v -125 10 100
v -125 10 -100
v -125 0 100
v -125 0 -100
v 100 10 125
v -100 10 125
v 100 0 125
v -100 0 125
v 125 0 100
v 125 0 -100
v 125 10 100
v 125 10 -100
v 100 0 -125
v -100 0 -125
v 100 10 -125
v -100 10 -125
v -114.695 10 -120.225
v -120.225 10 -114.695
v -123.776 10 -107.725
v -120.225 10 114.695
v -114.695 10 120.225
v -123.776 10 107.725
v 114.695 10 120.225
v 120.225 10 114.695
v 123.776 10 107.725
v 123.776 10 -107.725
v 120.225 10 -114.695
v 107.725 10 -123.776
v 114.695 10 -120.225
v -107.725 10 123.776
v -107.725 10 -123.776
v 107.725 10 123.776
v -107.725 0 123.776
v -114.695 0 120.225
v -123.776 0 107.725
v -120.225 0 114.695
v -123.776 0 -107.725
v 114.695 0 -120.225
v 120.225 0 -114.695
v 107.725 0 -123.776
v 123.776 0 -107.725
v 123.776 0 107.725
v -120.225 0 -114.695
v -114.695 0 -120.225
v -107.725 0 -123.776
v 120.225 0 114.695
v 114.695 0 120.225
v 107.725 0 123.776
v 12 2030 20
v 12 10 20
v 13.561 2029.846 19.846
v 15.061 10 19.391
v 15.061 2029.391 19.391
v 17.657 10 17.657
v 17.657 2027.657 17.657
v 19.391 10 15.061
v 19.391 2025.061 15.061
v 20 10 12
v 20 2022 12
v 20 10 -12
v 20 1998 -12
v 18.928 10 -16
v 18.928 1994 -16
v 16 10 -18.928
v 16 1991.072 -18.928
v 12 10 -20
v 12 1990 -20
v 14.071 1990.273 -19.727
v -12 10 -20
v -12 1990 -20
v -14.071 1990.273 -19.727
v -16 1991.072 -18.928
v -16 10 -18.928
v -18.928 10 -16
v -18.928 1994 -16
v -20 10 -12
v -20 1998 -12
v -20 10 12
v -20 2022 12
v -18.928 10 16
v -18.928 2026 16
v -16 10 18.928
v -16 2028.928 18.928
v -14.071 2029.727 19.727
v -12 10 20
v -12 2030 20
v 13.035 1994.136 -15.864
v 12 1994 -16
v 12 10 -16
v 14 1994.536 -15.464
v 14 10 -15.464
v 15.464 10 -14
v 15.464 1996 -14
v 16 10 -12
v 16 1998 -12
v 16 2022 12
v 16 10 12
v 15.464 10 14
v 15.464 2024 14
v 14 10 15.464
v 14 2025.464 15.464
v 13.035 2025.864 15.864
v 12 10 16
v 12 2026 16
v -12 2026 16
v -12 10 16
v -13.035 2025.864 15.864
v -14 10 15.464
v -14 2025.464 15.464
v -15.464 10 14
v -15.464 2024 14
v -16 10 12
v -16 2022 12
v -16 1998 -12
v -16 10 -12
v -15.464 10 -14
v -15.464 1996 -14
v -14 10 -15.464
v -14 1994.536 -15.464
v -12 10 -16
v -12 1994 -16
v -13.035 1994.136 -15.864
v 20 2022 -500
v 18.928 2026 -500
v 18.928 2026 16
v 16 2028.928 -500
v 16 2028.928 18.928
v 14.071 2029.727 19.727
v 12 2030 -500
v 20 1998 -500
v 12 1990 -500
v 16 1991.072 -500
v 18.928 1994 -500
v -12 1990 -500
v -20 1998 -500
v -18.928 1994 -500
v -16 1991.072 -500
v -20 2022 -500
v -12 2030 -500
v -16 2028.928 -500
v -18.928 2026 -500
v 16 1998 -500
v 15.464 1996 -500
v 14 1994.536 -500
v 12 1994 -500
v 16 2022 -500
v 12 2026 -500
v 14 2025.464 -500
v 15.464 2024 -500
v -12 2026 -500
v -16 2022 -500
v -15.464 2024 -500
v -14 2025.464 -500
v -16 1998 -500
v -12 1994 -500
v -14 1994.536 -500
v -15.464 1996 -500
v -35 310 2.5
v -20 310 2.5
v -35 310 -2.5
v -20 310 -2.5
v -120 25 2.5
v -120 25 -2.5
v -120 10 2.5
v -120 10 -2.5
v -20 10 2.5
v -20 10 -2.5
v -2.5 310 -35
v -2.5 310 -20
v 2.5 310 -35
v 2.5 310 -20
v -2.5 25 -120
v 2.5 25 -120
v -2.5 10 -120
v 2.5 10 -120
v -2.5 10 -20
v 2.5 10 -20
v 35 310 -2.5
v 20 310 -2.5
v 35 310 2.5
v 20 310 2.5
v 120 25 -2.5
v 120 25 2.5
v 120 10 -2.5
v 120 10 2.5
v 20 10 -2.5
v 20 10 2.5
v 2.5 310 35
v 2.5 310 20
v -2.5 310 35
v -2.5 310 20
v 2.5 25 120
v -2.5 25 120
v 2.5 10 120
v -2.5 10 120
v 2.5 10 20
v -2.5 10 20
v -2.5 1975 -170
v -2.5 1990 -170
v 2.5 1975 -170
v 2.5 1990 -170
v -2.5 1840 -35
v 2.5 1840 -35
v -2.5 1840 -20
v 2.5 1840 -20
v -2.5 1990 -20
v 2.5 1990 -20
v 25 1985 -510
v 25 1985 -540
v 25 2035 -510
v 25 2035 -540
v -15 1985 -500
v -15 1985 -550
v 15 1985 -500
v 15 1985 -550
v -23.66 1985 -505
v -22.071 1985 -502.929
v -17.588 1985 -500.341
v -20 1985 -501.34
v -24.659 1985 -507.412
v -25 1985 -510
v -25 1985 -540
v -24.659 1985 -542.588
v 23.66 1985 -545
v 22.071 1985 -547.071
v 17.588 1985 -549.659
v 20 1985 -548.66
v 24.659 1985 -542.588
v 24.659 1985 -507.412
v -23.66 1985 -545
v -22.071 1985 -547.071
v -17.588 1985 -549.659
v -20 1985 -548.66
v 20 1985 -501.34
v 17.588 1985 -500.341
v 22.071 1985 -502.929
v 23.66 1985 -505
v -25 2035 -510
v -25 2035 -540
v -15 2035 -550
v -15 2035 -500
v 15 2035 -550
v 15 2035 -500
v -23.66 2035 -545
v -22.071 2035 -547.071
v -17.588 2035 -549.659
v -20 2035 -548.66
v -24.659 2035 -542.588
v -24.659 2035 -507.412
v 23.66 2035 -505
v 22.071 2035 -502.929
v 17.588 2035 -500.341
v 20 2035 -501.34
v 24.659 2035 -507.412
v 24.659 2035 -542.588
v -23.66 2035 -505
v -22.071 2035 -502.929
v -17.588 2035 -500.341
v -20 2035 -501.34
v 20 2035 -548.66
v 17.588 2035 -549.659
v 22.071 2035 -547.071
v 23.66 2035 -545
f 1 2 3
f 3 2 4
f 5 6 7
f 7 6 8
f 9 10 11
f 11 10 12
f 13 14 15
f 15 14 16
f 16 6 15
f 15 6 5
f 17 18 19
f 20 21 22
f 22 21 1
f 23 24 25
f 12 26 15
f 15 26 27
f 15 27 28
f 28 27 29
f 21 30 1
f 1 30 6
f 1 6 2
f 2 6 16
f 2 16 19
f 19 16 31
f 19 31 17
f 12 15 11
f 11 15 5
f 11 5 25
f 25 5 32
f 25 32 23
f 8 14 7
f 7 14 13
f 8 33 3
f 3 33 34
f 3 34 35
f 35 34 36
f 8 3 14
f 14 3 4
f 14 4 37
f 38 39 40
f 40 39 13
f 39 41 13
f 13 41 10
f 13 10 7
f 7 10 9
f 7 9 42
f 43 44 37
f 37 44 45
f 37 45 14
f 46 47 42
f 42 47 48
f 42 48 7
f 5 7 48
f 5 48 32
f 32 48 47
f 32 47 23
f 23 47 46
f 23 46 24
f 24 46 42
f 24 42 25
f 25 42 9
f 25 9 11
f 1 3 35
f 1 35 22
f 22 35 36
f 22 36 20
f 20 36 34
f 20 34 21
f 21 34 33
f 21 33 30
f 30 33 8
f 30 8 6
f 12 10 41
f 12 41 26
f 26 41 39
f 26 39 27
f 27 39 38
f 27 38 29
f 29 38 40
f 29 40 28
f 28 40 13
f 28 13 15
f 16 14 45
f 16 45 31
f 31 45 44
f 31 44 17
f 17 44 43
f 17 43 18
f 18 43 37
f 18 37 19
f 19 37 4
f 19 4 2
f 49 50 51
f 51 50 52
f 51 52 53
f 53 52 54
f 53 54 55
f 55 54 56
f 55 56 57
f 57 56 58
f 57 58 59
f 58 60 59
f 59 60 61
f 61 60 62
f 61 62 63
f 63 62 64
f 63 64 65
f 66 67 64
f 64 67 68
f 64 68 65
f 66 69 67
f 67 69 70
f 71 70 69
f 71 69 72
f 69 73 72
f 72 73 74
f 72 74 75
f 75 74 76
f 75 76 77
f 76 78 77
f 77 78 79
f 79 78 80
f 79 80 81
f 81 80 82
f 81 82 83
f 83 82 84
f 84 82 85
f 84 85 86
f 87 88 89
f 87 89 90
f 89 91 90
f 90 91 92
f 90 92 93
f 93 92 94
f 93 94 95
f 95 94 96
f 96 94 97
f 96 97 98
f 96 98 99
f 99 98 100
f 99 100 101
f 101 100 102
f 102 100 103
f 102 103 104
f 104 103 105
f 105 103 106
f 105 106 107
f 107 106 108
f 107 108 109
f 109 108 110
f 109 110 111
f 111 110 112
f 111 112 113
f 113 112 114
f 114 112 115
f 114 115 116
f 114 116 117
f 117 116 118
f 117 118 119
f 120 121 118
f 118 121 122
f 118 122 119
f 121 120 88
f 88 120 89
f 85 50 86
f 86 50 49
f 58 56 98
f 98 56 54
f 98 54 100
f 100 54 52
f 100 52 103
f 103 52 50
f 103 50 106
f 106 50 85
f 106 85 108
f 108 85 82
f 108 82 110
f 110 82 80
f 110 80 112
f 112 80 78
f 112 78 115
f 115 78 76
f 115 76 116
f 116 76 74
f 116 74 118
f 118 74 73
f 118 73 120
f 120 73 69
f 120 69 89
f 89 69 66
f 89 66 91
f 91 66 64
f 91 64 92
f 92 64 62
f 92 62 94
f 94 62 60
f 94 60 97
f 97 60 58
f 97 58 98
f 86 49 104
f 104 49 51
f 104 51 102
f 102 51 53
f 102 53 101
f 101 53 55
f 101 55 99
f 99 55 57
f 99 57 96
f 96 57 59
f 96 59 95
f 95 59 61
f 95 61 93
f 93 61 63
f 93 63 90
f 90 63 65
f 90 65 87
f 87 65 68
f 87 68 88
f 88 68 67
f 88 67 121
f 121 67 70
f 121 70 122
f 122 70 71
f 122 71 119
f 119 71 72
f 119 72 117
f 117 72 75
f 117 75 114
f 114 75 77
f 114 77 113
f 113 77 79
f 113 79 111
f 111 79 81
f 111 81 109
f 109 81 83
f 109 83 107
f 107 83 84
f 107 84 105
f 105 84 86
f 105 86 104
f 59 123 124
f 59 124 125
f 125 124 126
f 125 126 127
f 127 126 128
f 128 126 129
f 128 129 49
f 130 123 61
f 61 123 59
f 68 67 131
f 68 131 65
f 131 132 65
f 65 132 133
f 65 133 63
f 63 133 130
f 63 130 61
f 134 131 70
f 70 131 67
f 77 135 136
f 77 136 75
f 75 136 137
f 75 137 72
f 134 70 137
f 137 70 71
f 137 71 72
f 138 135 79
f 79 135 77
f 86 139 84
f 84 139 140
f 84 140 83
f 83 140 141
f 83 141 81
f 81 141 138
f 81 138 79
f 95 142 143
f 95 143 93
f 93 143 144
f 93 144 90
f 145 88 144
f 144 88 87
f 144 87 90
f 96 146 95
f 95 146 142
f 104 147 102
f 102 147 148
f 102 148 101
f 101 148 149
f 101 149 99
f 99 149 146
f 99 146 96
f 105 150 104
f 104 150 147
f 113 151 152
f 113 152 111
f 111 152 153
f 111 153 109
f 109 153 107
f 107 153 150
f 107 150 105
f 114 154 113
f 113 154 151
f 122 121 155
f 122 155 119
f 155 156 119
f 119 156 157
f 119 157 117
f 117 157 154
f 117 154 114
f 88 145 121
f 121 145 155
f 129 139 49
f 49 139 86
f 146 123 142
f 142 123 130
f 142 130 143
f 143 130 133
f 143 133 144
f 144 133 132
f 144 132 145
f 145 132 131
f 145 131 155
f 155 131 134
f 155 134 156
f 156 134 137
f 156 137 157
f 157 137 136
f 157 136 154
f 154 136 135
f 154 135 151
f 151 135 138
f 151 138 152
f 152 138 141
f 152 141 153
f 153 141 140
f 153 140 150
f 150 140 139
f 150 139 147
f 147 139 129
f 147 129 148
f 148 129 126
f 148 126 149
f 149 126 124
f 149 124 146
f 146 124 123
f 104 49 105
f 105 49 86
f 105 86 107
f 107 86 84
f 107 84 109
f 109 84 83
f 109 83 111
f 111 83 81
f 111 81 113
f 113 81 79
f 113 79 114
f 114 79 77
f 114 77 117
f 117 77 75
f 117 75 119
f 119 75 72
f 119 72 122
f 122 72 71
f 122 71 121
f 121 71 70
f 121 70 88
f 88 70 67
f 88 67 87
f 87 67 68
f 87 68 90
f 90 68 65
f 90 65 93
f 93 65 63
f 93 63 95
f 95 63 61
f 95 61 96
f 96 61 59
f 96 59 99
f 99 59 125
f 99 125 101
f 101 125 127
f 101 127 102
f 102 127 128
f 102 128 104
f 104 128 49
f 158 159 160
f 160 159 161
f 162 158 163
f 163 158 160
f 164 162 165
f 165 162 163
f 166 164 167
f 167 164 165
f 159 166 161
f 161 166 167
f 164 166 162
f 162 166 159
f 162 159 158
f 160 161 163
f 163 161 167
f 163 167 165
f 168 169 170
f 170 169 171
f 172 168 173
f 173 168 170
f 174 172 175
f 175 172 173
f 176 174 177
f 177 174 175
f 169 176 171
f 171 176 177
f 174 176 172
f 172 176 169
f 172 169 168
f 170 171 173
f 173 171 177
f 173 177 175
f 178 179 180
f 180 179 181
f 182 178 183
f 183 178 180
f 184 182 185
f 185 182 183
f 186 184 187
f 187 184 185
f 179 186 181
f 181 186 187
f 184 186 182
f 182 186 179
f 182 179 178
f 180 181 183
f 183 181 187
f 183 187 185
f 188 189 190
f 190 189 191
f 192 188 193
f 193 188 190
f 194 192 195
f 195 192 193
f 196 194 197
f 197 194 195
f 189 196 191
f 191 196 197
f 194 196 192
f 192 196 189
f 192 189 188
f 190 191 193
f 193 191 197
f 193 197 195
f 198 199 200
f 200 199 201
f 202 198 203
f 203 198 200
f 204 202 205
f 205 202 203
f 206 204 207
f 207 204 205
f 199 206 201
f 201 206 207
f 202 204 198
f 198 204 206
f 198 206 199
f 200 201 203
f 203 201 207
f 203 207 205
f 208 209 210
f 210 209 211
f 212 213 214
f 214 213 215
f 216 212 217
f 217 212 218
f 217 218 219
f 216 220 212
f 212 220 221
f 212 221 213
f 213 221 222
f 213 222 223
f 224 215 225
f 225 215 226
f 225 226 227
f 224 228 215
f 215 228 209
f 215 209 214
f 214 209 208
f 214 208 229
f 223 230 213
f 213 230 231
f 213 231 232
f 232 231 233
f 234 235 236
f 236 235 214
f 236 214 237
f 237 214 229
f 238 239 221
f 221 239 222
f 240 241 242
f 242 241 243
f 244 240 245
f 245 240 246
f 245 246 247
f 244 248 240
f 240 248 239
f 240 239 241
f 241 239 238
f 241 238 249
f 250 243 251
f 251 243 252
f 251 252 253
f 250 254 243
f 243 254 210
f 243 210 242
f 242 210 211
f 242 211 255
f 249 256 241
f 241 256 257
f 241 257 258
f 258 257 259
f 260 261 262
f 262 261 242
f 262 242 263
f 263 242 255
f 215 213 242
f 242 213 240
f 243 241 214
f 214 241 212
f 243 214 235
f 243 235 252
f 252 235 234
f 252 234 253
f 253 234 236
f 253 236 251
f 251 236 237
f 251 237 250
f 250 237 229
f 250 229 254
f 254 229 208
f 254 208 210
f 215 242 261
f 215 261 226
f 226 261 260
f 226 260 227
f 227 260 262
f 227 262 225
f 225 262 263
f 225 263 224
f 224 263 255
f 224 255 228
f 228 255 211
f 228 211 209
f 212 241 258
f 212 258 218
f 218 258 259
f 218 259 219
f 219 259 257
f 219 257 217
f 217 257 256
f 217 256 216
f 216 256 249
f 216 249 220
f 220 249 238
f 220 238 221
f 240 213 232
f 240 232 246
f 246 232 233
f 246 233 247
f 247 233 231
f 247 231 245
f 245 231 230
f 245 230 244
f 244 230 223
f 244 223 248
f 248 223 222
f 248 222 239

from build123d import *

# Parameters (mm, degrees)
SKETCH1_W                         = 250
SKETCH1_H                         = 250
BOSS_EXTRUDE1_DEPTH               = 10
SQUARE_TUBE_40_X_40_X_4_1_DEPTH   = 2029.284271247
SQUARE_TUBE_40_X_40_X_4_1_2_DEPTH = 529.284271247
GUSSET1_THICKNESS                 = 5
GUSSET2_THICKNESS                 = 5
GUSSET3_THICKNESS                 = 5
GUSSET4_THICKNESS                 = 5
GUSSET5_THICKNESS                 = 5
SKETCH18_W                        = 50
SKETCH18_H                        = 50
BOSS_EXTRUDE2_DEPTH               = 50
FILLET1_R                         = 10
FILLET2_R                         = 25


with BuildPart() as part:
    # Sketch1 → Boss-Extrude1 (new body)
    with BuildSketch(Plane(origin=(0, 0, 0), x_dir=(1, 0, 0), z_dir=(0, 1, 0))):
        Rectangle(SKETCH1_W, SKETCH1_H)
    extrude(amount=BOSS_EXTRUDE1_DEPTH)

    # Fillet2
    fillet2_edges = [part.edges().sort_by_distance(p)[0] for p in [
        (-125, 5, -125),
        (125, 5, -125),
        (125, 5, 125),
        (-125, 5, 125),
    ]]
    fillet(fillet2_edges, radius=FILLET2_R)


with BuildPart() as body_2:
    # Sketch12 → Square tube 40 X 40 X 4(1) (new body)
    with BuildSketch(Plane.ZX.offset(10)):
        with BuildLine():
            Line((-12, -20), (12, -20))
            ThreePointArc((12, -20), (17.656854249, -17.656854249), (20, -12))
            Line((20, -12), (20, 12))
            ThreePointArc((20, 12), (17.656854249, 17.656854249), (12, 20))
            Line((12, 20), (-12, 20))
            ThreePointArc((-12, 20), (-17.656854249, 17.656854249), (-20, 12))
            Line((-20, 12), (-20, -12))
            ThreePointArc((-20, -12), (-17.656854249, -17.656854249), (-12, -20))
        make_face()
        with BuildLine():
            Line((-12, -16), (12, -16))
            ThreePointArc((12, -16), (14.828427125, -14.828427125), (16, -12))
            Line((16, -12), (16, 12))
            ThreePointArc((16, 12), (14.828427125, 14.828427125), (12, 16))
            Line((12, 16), (-12, 16))
            ThreePointArc((-12, 16), (-14.828427125, 14.828427125), (-16, 12))
            Line((-16, 12), (-16, -12))
            ThreePointArc((-16, -12), (-14.828427125, -14.828427125), (-12, -16))
        make_face(mode=Mode.SUBTRACT)
    extrude(amount=SQUARE_TUBE_40_X_40_X_4_1_DEPTH)

    # Square tube 40 X 40 X 4(1) mitre 1
    split(bisect_by=Plane(origin=(0, 2010, 0), x_dir=(1, 0, 0), z_dir=(0, -0.707106781, 0.707106781)), keep=Keep.TOP)


with BuildPart() as body_3:
    # Sketch12 on segment 2 (carried to segment 2) → Square tube 40 X 40 X 4_1 2 (new body)
    with BuildSketch(Plane(origin=(0, 2010, 29.284271247), x_dir=(0, 1, 0), z_dir=(0, 0, -1))):
        with BuildLine():
            Line((-12, -20), (12, -20))
            ThreePointArc((12, -20), (17.656854249, -17.656854249), (20, -12))
            Line((20, -12), (20, 12))
            ThreePointArc((20, 12), (17.656854249, 17.656854249), (12, 20))
            Line((12, 20), (-12, 20))
            ThreePointArc((-12, 20), (-17.656854249, 17.656854249), (-20, 12))
            Line((-20, 12), (-20, -12))
            ThreePointArc((-20, -12), (-17.656854249, -17.656854249), (-12, -20))
        make_face()
        with BuildLine():
            Line((-12, -16), (12, -16))
            ThreePointArc((12, -16), (14.828427125, -14.828427125), (16, -12))
            Line((16, -12), (16, 12))
            ThreePointArc((16, 12), (14.828427125, 14.828427125), (12, 16))
            Line((12, 16), (-12, 16))
            ThreePointArc((-12, 16), (-14.828427125, 14.828427125), (-16, 12))
            Line((-16, 12), (-16, -12))
            ThreePointArc((-16, -12), (-14.828427125, -14.828427125), (-12, -16))
        make_face(mode=Mode.SUBTRACT)
    extrude(amount=SQUARE_TUBE_40_X_40_X_4_1_2_DEPTH)

    # Square tube 40 X 40 X 4_1 2 mitre 1
    split(bisect_by=Plane(origin=(0, 2010, 0), x_dir=(-1, 0, 0), z_dir=(0, 0.707106781, -0.707106781)), keep=Keep.TOP)


with BuildPart() as body_4:
    # Gusset1: a gusset: a plate 5.0 thick in the corner of two members, its outline drawn in place
    gusset1_outline = Wire([Line((-20, 10, 2.5), (-20, 310, 2.5)), Line((-20, 310, 2.5), (-35, 310, 2.5)), Line((-35, 310, 2.5), (-120, 25, 2.5)), Line((-120, 25, 2.5), (-120, 10, 2.5)), Line((-120, 10, 2.5), (-20, 10, 2.5))])
    add(extrude(Face(gusset1_outline), amount=GUSSET1_THICKNESS, dir=(0, 0, -1)))


with BuildPart() as body_5:
    # Gusset2: a gusset: a plate 5.0 thick in the corner of two members, its outline drawn in place
    gusset2_outline = Wire([Line((-2.5, 10, -20), (-2.5, 310, -20)), Line((-2.5, 310, -20), (-2.5, 310, -35)), Line((-2.5, 310, -35), (-2.5, 25, -120)), Line((-2.5, 25, -120), (-2.5, 10, -120)), Line((-2.5, 10, -120), (-2.5, 10, -20))])
    add(extrude(Face(gusset2_outline), amount=GUSSET2_THICKNESS, dir=(1, 0, 0)))


with BuildPart() as body_6:
    # Gusset3: a gusset: a plate 5.0 thick in the corner of two members, its outline drawn in place
    gusset3_outline = Wire([Line((20, 10, -2.5), (20, 310, -2.5)), Line((20, 310, -2.5), (35, 310, -2.5)), Line((35, 310, -2.5), (120, 25, -2.5)), Line((120, 25, -2.5), (120, 10, -2.5)), Line((120, 10, -2.5), (20, 10, -2.5))])
    add(extrude(Face(gusset3_outline), amount=GUSSET3_THICKNESS, dir=(0, 0, 1)))


with BuildPart() as body_7:
    # Gusset4: a gusset: a plate 5.0 thick in the corner of two members, its outline drawn in place
    gusset4_outline = Wire([Line((2.5, 10, 20), (2.5, 310, 20)), Line((2.5, 310, 20), (2.5, 310, 35)), Line((2.5, 310, 35), (2.5, 25, 120)), Line((2.5, 25, 120), (2.5, 10, 120)), Line((2.5, 10, 120), (2.5, 10, 20))])
    add(extrude(Face(gusset4_outline), amount=GUSSET4_THICKNESS, dir=(-1, 0, 0)))


with BuildPart() as body_8:
    # Gusset5: a gusset: a plate 5.0 thick in the corner of two members, its outline drawn in place
    gusset5_outline = Wire([Line((-2.5, 1990, -20), (-2.5, 1990, -170)), Line((-2.5, 1990, -170), (-2.5, 1975, -170)), Line((-2.5, 1975, -170), (-2.5, 1840, -35)), Line((-2.5, 1840, -35), (-2.5, 1840, -20)), Line((-2.5, 1840, -20), (-2.5, 1990, -20))])
    add(extrude(Face(gusset5_outline), amount=GUSSET5_THICKNESS, dir=(1, 0, 0)))


with BuildPart() as body_9:
    # Sketch18 → Boss-Extrude2 (new body)
    with BuildSketch(Plane(origin=(0, 0, -500), x_dir=(-1, 0, 0), z_dir=(0, 0, -1))):
        with Locations((0, 2010)):
            Rectangle(SKETCH18_W, SKETCH18_H)
    extrude(amount=BOSS_EXTRUDE2_DEPTH)

    # Fillet1
    fillet1_edges = [body_9.edges().sort_by_distance(p)[0] for p in [
        (-25, 2010, -550),
        (25, 2010, -550),
        (-25, 2010, -500),
        (25, 2010, -500),
    ]]
    fillet(fillet1_edges, radius=FILLET1_R)


solid = Compound([part.part, body_2.part, body_3.part, body_4.part, body_5.part, body_6.part, body_7.part, body_8.part, body_9.part])
